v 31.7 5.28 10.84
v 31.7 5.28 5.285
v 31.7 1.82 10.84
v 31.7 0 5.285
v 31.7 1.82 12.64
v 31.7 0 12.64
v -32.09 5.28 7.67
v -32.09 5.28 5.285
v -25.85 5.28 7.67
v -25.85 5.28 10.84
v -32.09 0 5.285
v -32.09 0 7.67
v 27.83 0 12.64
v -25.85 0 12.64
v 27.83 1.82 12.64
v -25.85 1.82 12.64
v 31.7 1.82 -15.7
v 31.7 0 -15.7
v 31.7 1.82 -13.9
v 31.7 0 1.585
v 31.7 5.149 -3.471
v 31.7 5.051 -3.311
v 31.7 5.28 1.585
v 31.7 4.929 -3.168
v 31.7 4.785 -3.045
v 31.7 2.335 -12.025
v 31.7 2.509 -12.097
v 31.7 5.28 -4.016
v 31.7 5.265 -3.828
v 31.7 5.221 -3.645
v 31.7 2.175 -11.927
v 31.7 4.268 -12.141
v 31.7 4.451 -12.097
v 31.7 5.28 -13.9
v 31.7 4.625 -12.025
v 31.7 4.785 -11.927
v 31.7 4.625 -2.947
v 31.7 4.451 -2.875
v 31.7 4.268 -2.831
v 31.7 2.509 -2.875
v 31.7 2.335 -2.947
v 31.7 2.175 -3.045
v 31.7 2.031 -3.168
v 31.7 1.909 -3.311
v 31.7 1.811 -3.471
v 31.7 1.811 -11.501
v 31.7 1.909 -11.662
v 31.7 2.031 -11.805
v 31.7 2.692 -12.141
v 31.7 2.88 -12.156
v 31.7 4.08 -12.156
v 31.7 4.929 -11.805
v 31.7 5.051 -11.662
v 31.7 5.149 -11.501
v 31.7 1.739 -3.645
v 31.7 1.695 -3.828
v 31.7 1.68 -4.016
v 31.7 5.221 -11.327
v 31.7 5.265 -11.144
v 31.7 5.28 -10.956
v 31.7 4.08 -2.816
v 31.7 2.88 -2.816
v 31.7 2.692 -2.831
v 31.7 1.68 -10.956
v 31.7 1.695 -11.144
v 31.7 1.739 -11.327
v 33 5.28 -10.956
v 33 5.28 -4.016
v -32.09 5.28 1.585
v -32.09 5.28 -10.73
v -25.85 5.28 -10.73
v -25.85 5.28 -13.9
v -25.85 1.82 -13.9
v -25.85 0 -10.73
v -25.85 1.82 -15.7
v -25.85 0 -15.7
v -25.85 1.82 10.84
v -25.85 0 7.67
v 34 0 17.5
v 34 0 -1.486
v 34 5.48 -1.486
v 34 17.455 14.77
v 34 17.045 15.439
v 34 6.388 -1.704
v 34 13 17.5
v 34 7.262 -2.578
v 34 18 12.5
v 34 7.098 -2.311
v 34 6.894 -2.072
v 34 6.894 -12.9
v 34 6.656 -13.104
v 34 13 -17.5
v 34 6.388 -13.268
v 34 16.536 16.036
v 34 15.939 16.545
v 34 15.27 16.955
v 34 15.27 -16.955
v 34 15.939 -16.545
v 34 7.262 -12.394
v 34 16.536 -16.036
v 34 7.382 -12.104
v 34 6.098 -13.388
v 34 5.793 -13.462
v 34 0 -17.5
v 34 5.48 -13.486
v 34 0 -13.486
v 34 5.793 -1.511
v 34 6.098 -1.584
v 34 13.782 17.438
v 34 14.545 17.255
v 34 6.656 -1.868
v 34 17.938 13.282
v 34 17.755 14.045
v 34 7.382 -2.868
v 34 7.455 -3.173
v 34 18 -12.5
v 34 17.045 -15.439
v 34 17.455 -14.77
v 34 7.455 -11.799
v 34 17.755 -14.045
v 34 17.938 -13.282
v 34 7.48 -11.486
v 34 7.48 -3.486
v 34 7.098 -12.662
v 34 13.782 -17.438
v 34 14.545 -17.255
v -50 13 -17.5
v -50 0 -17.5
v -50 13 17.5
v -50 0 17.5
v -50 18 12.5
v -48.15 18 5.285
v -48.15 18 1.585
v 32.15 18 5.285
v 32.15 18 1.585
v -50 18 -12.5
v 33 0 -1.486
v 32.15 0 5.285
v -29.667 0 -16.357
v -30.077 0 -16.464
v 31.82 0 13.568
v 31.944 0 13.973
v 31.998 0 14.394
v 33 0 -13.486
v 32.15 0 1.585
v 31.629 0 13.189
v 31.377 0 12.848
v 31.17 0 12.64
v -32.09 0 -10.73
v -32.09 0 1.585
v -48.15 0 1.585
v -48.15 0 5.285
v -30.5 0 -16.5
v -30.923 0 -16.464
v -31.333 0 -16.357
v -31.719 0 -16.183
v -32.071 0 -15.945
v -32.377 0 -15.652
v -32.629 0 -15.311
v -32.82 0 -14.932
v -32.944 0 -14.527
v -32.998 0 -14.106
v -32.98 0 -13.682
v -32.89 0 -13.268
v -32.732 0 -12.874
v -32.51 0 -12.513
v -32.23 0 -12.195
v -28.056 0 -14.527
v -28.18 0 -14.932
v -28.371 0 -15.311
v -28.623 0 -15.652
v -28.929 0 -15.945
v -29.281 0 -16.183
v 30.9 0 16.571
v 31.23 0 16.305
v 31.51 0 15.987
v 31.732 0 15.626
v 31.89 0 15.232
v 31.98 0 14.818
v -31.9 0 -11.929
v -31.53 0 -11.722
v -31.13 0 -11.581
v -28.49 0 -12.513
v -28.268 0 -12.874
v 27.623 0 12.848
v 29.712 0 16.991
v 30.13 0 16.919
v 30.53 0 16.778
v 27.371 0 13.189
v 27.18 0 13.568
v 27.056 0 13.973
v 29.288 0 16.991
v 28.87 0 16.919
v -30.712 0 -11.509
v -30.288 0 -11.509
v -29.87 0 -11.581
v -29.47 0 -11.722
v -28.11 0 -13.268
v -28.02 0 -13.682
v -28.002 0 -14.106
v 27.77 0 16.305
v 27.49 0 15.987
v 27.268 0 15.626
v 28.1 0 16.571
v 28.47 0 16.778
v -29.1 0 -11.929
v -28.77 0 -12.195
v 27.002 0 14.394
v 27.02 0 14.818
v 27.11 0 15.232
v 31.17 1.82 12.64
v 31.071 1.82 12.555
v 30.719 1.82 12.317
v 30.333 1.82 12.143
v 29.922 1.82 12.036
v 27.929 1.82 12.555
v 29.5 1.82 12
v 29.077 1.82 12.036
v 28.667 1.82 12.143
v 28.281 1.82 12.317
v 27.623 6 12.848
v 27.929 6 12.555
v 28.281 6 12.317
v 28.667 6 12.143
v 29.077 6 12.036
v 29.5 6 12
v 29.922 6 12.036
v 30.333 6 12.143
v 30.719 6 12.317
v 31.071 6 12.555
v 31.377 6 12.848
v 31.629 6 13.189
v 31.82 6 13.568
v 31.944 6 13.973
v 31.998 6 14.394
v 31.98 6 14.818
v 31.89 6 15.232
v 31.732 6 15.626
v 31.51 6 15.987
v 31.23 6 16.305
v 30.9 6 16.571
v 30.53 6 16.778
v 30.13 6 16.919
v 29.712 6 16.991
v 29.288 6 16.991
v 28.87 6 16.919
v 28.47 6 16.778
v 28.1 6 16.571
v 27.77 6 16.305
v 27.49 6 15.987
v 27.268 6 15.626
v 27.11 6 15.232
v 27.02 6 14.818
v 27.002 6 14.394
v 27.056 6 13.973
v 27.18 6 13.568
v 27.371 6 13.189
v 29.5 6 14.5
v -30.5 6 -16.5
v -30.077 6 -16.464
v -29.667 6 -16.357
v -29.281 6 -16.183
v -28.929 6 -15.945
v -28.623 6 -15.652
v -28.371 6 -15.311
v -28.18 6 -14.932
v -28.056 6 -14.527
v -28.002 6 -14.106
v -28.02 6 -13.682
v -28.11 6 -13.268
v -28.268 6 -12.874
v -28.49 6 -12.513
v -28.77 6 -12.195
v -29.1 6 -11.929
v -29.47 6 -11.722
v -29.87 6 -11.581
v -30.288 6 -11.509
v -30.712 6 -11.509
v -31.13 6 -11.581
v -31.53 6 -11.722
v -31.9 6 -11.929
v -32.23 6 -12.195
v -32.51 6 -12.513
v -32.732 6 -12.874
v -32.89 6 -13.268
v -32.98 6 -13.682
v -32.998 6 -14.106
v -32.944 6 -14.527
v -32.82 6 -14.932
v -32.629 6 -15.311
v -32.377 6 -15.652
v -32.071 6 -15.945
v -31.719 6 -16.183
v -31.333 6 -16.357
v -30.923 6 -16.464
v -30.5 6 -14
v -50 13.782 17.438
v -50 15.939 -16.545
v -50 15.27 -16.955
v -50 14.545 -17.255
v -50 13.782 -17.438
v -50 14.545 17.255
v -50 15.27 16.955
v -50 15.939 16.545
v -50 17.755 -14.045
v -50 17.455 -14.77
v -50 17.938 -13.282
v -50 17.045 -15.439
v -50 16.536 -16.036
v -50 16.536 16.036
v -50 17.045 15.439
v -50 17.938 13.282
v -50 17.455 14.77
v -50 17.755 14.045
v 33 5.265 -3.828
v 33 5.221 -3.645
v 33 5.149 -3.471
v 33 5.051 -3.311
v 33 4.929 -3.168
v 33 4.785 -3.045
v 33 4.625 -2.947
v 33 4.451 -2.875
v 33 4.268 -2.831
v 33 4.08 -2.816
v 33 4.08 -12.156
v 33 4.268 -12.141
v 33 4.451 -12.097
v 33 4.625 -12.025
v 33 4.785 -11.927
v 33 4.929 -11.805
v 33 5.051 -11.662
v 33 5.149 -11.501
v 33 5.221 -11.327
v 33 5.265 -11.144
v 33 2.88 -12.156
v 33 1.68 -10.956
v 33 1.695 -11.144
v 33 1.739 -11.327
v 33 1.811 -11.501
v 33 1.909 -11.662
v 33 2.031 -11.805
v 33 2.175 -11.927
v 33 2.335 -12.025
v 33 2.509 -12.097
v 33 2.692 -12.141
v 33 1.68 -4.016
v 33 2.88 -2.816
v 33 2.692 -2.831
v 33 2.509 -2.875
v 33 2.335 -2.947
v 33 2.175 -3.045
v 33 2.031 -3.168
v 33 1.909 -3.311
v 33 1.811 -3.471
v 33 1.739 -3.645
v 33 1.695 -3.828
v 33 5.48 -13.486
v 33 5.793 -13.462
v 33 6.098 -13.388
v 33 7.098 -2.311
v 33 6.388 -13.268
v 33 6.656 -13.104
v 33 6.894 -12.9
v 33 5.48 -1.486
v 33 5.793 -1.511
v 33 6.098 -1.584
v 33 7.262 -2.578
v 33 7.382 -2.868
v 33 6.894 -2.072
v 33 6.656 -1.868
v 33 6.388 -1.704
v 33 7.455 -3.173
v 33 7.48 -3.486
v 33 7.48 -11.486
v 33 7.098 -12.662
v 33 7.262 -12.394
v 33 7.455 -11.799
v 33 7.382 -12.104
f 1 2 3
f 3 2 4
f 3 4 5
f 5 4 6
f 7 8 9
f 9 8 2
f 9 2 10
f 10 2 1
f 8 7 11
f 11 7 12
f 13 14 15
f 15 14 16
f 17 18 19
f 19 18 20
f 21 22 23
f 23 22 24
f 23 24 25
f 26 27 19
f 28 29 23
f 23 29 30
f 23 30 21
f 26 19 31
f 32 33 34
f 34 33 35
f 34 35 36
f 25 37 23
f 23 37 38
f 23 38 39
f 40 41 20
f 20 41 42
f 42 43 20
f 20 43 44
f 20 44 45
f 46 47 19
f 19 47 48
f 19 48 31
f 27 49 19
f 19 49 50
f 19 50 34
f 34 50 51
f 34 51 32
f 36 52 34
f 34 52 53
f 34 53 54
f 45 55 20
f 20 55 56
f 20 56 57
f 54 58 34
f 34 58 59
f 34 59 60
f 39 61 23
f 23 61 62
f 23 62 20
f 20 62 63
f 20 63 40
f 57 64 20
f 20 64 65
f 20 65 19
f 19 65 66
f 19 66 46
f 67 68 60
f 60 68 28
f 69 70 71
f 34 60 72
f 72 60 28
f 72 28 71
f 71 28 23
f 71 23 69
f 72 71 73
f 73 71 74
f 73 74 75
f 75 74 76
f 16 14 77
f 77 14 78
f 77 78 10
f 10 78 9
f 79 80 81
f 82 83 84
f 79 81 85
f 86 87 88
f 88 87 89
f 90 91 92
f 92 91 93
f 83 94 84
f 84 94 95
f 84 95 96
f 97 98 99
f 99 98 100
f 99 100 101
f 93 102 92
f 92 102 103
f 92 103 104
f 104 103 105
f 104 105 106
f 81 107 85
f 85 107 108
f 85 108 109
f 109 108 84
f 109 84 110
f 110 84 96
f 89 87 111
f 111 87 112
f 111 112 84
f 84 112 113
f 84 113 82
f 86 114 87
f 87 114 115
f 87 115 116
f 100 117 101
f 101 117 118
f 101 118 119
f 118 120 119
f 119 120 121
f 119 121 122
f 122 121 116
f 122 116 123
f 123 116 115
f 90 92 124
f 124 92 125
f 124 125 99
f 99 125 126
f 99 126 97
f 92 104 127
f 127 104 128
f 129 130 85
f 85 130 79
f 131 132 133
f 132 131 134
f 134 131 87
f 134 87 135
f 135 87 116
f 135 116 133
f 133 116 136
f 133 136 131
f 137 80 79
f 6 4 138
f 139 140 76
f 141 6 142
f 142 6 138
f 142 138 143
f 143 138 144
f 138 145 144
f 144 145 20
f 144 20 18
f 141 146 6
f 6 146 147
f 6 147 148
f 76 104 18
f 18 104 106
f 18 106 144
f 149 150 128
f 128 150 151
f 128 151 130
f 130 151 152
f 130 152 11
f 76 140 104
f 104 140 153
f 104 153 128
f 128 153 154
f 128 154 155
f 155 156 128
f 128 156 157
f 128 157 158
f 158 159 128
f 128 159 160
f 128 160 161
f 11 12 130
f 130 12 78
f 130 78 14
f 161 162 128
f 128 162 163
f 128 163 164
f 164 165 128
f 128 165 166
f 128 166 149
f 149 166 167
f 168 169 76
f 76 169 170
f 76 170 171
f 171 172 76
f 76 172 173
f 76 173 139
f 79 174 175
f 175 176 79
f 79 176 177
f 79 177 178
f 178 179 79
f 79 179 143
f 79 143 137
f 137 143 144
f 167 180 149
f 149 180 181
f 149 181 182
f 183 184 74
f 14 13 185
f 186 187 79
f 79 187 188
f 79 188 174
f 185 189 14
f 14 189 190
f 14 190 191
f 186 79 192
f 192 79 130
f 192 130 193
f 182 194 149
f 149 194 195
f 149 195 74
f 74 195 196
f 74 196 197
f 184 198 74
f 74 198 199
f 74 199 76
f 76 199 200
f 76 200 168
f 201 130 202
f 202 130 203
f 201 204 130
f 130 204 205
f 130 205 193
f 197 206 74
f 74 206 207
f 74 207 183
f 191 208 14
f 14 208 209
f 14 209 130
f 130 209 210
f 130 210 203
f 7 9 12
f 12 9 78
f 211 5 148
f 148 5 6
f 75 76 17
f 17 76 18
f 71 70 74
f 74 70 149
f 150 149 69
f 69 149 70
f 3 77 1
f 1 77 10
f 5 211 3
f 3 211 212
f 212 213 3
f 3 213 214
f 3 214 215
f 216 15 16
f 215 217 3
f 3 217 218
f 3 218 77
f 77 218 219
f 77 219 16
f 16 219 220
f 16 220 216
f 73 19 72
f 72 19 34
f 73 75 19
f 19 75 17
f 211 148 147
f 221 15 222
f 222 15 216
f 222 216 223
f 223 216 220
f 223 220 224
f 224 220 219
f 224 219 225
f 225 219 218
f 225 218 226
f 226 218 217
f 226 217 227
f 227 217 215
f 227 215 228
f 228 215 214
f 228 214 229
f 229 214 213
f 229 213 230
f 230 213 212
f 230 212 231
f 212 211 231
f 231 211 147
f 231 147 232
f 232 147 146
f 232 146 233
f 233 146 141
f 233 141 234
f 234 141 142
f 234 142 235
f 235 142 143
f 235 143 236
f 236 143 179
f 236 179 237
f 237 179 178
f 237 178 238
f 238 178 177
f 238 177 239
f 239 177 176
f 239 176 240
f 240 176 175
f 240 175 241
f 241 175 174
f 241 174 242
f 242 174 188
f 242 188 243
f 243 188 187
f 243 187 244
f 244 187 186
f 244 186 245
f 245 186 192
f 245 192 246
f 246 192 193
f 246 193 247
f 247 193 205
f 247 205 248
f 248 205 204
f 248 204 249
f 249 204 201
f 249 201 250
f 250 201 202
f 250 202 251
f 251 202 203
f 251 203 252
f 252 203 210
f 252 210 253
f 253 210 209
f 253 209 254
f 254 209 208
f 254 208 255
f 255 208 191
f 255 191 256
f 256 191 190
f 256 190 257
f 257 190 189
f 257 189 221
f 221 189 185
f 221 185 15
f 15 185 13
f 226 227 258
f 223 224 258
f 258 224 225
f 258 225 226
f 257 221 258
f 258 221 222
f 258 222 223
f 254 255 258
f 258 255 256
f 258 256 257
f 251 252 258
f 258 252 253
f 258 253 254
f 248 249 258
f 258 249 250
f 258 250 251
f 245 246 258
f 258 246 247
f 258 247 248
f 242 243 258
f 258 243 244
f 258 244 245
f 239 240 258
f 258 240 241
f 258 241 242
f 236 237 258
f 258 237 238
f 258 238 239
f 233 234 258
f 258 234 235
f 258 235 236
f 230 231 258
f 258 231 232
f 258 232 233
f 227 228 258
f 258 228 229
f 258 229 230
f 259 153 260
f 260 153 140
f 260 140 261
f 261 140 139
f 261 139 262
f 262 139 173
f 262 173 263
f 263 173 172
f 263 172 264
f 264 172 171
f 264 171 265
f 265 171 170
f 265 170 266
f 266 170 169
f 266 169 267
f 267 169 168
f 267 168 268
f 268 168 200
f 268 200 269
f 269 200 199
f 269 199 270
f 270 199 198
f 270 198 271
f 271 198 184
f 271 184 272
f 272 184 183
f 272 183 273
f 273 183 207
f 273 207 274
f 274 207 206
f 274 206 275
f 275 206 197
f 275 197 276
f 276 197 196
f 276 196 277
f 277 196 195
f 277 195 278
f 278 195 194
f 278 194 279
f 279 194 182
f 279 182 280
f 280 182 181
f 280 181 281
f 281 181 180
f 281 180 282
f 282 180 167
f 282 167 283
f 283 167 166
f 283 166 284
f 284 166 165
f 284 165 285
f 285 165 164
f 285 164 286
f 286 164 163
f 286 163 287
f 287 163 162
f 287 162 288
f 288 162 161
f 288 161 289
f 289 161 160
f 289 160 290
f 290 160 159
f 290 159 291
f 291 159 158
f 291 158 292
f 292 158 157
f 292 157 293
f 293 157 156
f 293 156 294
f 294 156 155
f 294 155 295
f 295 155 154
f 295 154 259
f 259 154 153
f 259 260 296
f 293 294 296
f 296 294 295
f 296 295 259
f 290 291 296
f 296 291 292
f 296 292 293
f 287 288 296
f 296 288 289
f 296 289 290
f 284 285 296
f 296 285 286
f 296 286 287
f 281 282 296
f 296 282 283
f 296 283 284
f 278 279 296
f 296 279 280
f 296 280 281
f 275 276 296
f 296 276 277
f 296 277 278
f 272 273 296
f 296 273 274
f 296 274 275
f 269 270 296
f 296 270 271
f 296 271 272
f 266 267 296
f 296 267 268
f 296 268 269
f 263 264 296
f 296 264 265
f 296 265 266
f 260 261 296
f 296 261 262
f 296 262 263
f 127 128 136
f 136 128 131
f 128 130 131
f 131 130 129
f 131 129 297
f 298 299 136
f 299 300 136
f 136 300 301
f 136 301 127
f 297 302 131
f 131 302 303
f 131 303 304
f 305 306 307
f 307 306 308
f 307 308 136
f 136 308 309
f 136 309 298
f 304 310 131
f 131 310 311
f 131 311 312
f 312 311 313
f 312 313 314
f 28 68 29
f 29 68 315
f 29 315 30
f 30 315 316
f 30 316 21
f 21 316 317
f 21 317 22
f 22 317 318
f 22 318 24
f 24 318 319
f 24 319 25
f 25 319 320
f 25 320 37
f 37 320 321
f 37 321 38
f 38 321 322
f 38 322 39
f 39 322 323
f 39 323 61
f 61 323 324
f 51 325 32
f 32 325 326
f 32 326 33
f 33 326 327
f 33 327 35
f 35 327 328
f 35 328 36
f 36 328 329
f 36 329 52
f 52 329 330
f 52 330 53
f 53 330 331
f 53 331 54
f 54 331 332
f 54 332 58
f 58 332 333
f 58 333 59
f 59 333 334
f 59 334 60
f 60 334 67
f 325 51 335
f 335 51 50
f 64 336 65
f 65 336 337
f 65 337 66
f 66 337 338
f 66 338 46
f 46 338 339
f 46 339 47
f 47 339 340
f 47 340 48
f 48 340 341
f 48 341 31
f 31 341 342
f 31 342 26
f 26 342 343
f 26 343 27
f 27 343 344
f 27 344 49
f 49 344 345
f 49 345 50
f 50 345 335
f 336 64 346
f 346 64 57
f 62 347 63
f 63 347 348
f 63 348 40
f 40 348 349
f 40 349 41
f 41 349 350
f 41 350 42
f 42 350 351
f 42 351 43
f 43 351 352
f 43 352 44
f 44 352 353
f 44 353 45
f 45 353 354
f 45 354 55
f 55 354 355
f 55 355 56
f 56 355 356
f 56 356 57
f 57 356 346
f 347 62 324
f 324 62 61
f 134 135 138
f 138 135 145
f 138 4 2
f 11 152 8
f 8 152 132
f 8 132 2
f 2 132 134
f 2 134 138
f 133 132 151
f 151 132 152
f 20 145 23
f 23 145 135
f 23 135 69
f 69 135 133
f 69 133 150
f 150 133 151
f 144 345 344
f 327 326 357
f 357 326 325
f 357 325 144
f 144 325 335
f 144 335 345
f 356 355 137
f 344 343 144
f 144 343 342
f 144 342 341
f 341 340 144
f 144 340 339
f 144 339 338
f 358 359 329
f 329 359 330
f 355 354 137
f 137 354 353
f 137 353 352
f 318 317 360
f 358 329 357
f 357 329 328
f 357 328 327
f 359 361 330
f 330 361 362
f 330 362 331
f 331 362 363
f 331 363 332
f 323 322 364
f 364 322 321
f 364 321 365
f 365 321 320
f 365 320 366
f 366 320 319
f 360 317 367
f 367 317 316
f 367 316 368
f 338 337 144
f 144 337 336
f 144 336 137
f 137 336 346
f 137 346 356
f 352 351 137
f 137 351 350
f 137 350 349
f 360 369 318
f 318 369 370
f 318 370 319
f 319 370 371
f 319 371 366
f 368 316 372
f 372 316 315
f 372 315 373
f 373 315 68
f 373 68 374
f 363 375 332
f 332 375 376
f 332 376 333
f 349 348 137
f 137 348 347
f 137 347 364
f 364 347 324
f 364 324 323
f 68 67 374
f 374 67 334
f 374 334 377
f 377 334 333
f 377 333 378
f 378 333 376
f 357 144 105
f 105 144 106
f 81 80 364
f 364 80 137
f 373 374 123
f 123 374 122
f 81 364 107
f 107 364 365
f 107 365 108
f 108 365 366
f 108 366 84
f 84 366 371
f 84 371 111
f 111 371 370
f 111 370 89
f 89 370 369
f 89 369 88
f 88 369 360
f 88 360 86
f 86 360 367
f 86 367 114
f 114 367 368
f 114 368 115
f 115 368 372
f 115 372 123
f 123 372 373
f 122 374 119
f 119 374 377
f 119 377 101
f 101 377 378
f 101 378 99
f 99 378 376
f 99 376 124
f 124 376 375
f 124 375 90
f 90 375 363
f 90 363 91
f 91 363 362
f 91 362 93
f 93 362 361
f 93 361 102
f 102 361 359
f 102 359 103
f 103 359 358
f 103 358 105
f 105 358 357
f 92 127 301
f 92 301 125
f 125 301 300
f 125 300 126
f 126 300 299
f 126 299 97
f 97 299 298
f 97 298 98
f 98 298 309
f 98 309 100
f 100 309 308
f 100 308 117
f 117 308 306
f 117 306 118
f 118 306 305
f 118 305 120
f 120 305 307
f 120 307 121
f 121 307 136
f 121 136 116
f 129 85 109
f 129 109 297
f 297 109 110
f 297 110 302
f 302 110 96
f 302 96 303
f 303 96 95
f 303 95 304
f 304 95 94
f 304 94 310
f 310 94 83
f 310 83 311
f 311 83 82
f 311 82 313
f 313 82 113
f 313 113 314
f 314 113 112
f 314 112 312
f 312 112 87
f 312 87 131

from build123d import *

# Parameters (mm, degrees)
SKETCH1_W           = 68
SKETCH1_H           = 35
BOSS_EXTRUDE1_DEPTH = 18
CUT_EXTRUDE1_DEPTH  = 5.28
SKETCH4_W           = 57.55
SKETCH4_H           = 1.8
BOSS_EXTRUDE2_DEPTH = 3.46
SKETCH5_R           = 2.5
CUT_EXTRUDE2_DEPTH  = 6
SKETCH6_W           = 35
SKETCH6_H           = 18
BOSS_EXTRUDE3_DEPTH = 16
CUT_EXTRUDE3_DEPTH  = 3
SKETCH9_W           = 80.3
SKETCH9_H           = 3.7
CUT_EXTRUDE4_DEPTH  = 20
SKETCH10_W          = 12
SKETCH10_H          = 8
CUT_EXTRUDE5_DEPTH  = 1
FILLET1_R           = 2
FILLET2_R           = 5


with BuildPart() as part:
    # Sketch1 → Boss-Extrude1 (new body)
    with BuildSketch(Plane(origin=(0, 0, 0), x_dir=(1, 0, 0), z_dir=(0, 1, 0))):
        Rectangle(SKETCH1_W, SKETCH1_H)
    extrude(amount=BOSS_EXTRUDE1_DEPTH)

    # Sketch3 → Cut-Extrude1 (cut)
    with BuildSketch(Plane.XZ):
        Polygon((31.7, -15.7), (31.7, 12.64), (-25.85, 12.64), (-25.85, 7.67), (-32.09, 7.67), (-32.09, -10.73), (-25.85, -10.73), (-25.85, -15.7), align=None)
    extrude(amount=-CUT_EXTRUDE1_DEPTH, mode=Mode.SUBTRACT)

    # Sketch4 → Boss-Extrude2 (add)
    with BuildSketch(Plane.XZ.offset(-5.28)):
        with Locations((2.925, 11.74)):
            Rectangle(SKETCH4_W, SKETCH4_H)
        with Locations((2.925, -14.8)):
            Rectangle(SKETCH4_W, SKETCH4_H)
    extrude(amount=BOSS_EXTRUDE2_DEPTH)

    # Sketch5 → Cut-Extrude2 (cut)
    with BuildSketch(Plane.XZ):
        with Locations(Location((29.5, 14.5, 0), (0, 0, 270))):
            Circle(SKETCH5_R)
        with Locations(Location((-30.5, -14, 0), (0, 0, 270))):
            Circle(SKETCH5_R)
    extrude(amount=-CUT_EXTRUDE2_DEPTH, mode=Mode.SUBTRACT)

    # Sketch6 → Boss-Extrude3 (add)
    with BuildSketch(Plane.ZY.offset(34)):
        with Locations((0, 9)):
            Rectangle(SKETCH6_W, SKETCH6_H)
    extrude(amount=BOSS_EXTRUDE3_DEPTH)

    # Sketch8 → Cut-Extrude3 (cut)
    with BuildSketch(Plane(origin=(34, 0, 0), x_dir=(0, 0, -1), z_dir=(1, 0, 0))):
        with BuildLine():
            Line((2.816168173, 4.079999973), (2.816168173, 2.879999987))
            ThreePointArc((2.816168173, 2.879999987), (3.167640032, 2.031471858), (4.016168161, 1.679999999))
            Line((4.016168161, 1.679999999), (10.956168078, 1.679999999))
            ThreePointArc((10.956168078, 1.679999999), (11.804696206, 2.031471858), (12.156168065, 2.879999987))
            Line((12.156168065, 2.879999987), (12.156168065, 4.079999973))
            ThreePointArc((12.156168065, 4.079999973), (11.804696206, 4.928528102), (10.956168078, 5.279999961))
            Line((10.956168078, 5.279999961), (4.016168161, 5.279999961))
            ThreePointArc((4.016168161, 5.279999961), (3.167640032, 4.928528102), (2.816168173, 4.079999973))
        make_face()
    extrude(amount=-CUT_EXTRUDE3_DEPTH, mode=Mode.SUBTRACT)

    # Sketch9 → Cut-Extrude4 (cut)
    with BuildSketch(Plane(origin=(0, 18, 0), x_dir=(1, 0, 0), z_dir=(0, 1, 0))):
        with Locations((-8, -3.4346612)):
            Rectangle(SKETCH9_W, SKETCH9_H)
    extrude(amount=-CUT_EXTRUDE4_DEPTH, mode=Mode.SUBTRACT)

    # Sketch10 → Cut-Extrude5 (cut)
    with BuildSketch(Plane(origin=(34, 0, 0), x_dir=(0, 0, -1), z_dir=(1, 0, 0))):
        with Locations((7.486168119, 3.47999998)):
            Rectangle(SKETCH10_W, SKETCH10_H)
    extrude(amount=-CUT_EXTRUDE5_DEPTH, mode=Mode.SUBTRACT)

    # Fillet1
    fillet1_edges = [part.edges().sort_by_distance(p)[0] for p in [
        (33.5, 7.47999998, -13.486168119),
        (33.5, 7.47999998, -1.486168119),
    ]]
    fillet(fillet1_edges, radius=FILLET1_R)

    # Fillet2
    fillet2_edges = [part.edges().sort_by_distance(p)[0] for p in [
        (-8, 18, 17.5),
        (-8, 18, -17.5),
    ]]
    fillet(fillet2_edges, radius=FILLET2_R)


solid = part.part
